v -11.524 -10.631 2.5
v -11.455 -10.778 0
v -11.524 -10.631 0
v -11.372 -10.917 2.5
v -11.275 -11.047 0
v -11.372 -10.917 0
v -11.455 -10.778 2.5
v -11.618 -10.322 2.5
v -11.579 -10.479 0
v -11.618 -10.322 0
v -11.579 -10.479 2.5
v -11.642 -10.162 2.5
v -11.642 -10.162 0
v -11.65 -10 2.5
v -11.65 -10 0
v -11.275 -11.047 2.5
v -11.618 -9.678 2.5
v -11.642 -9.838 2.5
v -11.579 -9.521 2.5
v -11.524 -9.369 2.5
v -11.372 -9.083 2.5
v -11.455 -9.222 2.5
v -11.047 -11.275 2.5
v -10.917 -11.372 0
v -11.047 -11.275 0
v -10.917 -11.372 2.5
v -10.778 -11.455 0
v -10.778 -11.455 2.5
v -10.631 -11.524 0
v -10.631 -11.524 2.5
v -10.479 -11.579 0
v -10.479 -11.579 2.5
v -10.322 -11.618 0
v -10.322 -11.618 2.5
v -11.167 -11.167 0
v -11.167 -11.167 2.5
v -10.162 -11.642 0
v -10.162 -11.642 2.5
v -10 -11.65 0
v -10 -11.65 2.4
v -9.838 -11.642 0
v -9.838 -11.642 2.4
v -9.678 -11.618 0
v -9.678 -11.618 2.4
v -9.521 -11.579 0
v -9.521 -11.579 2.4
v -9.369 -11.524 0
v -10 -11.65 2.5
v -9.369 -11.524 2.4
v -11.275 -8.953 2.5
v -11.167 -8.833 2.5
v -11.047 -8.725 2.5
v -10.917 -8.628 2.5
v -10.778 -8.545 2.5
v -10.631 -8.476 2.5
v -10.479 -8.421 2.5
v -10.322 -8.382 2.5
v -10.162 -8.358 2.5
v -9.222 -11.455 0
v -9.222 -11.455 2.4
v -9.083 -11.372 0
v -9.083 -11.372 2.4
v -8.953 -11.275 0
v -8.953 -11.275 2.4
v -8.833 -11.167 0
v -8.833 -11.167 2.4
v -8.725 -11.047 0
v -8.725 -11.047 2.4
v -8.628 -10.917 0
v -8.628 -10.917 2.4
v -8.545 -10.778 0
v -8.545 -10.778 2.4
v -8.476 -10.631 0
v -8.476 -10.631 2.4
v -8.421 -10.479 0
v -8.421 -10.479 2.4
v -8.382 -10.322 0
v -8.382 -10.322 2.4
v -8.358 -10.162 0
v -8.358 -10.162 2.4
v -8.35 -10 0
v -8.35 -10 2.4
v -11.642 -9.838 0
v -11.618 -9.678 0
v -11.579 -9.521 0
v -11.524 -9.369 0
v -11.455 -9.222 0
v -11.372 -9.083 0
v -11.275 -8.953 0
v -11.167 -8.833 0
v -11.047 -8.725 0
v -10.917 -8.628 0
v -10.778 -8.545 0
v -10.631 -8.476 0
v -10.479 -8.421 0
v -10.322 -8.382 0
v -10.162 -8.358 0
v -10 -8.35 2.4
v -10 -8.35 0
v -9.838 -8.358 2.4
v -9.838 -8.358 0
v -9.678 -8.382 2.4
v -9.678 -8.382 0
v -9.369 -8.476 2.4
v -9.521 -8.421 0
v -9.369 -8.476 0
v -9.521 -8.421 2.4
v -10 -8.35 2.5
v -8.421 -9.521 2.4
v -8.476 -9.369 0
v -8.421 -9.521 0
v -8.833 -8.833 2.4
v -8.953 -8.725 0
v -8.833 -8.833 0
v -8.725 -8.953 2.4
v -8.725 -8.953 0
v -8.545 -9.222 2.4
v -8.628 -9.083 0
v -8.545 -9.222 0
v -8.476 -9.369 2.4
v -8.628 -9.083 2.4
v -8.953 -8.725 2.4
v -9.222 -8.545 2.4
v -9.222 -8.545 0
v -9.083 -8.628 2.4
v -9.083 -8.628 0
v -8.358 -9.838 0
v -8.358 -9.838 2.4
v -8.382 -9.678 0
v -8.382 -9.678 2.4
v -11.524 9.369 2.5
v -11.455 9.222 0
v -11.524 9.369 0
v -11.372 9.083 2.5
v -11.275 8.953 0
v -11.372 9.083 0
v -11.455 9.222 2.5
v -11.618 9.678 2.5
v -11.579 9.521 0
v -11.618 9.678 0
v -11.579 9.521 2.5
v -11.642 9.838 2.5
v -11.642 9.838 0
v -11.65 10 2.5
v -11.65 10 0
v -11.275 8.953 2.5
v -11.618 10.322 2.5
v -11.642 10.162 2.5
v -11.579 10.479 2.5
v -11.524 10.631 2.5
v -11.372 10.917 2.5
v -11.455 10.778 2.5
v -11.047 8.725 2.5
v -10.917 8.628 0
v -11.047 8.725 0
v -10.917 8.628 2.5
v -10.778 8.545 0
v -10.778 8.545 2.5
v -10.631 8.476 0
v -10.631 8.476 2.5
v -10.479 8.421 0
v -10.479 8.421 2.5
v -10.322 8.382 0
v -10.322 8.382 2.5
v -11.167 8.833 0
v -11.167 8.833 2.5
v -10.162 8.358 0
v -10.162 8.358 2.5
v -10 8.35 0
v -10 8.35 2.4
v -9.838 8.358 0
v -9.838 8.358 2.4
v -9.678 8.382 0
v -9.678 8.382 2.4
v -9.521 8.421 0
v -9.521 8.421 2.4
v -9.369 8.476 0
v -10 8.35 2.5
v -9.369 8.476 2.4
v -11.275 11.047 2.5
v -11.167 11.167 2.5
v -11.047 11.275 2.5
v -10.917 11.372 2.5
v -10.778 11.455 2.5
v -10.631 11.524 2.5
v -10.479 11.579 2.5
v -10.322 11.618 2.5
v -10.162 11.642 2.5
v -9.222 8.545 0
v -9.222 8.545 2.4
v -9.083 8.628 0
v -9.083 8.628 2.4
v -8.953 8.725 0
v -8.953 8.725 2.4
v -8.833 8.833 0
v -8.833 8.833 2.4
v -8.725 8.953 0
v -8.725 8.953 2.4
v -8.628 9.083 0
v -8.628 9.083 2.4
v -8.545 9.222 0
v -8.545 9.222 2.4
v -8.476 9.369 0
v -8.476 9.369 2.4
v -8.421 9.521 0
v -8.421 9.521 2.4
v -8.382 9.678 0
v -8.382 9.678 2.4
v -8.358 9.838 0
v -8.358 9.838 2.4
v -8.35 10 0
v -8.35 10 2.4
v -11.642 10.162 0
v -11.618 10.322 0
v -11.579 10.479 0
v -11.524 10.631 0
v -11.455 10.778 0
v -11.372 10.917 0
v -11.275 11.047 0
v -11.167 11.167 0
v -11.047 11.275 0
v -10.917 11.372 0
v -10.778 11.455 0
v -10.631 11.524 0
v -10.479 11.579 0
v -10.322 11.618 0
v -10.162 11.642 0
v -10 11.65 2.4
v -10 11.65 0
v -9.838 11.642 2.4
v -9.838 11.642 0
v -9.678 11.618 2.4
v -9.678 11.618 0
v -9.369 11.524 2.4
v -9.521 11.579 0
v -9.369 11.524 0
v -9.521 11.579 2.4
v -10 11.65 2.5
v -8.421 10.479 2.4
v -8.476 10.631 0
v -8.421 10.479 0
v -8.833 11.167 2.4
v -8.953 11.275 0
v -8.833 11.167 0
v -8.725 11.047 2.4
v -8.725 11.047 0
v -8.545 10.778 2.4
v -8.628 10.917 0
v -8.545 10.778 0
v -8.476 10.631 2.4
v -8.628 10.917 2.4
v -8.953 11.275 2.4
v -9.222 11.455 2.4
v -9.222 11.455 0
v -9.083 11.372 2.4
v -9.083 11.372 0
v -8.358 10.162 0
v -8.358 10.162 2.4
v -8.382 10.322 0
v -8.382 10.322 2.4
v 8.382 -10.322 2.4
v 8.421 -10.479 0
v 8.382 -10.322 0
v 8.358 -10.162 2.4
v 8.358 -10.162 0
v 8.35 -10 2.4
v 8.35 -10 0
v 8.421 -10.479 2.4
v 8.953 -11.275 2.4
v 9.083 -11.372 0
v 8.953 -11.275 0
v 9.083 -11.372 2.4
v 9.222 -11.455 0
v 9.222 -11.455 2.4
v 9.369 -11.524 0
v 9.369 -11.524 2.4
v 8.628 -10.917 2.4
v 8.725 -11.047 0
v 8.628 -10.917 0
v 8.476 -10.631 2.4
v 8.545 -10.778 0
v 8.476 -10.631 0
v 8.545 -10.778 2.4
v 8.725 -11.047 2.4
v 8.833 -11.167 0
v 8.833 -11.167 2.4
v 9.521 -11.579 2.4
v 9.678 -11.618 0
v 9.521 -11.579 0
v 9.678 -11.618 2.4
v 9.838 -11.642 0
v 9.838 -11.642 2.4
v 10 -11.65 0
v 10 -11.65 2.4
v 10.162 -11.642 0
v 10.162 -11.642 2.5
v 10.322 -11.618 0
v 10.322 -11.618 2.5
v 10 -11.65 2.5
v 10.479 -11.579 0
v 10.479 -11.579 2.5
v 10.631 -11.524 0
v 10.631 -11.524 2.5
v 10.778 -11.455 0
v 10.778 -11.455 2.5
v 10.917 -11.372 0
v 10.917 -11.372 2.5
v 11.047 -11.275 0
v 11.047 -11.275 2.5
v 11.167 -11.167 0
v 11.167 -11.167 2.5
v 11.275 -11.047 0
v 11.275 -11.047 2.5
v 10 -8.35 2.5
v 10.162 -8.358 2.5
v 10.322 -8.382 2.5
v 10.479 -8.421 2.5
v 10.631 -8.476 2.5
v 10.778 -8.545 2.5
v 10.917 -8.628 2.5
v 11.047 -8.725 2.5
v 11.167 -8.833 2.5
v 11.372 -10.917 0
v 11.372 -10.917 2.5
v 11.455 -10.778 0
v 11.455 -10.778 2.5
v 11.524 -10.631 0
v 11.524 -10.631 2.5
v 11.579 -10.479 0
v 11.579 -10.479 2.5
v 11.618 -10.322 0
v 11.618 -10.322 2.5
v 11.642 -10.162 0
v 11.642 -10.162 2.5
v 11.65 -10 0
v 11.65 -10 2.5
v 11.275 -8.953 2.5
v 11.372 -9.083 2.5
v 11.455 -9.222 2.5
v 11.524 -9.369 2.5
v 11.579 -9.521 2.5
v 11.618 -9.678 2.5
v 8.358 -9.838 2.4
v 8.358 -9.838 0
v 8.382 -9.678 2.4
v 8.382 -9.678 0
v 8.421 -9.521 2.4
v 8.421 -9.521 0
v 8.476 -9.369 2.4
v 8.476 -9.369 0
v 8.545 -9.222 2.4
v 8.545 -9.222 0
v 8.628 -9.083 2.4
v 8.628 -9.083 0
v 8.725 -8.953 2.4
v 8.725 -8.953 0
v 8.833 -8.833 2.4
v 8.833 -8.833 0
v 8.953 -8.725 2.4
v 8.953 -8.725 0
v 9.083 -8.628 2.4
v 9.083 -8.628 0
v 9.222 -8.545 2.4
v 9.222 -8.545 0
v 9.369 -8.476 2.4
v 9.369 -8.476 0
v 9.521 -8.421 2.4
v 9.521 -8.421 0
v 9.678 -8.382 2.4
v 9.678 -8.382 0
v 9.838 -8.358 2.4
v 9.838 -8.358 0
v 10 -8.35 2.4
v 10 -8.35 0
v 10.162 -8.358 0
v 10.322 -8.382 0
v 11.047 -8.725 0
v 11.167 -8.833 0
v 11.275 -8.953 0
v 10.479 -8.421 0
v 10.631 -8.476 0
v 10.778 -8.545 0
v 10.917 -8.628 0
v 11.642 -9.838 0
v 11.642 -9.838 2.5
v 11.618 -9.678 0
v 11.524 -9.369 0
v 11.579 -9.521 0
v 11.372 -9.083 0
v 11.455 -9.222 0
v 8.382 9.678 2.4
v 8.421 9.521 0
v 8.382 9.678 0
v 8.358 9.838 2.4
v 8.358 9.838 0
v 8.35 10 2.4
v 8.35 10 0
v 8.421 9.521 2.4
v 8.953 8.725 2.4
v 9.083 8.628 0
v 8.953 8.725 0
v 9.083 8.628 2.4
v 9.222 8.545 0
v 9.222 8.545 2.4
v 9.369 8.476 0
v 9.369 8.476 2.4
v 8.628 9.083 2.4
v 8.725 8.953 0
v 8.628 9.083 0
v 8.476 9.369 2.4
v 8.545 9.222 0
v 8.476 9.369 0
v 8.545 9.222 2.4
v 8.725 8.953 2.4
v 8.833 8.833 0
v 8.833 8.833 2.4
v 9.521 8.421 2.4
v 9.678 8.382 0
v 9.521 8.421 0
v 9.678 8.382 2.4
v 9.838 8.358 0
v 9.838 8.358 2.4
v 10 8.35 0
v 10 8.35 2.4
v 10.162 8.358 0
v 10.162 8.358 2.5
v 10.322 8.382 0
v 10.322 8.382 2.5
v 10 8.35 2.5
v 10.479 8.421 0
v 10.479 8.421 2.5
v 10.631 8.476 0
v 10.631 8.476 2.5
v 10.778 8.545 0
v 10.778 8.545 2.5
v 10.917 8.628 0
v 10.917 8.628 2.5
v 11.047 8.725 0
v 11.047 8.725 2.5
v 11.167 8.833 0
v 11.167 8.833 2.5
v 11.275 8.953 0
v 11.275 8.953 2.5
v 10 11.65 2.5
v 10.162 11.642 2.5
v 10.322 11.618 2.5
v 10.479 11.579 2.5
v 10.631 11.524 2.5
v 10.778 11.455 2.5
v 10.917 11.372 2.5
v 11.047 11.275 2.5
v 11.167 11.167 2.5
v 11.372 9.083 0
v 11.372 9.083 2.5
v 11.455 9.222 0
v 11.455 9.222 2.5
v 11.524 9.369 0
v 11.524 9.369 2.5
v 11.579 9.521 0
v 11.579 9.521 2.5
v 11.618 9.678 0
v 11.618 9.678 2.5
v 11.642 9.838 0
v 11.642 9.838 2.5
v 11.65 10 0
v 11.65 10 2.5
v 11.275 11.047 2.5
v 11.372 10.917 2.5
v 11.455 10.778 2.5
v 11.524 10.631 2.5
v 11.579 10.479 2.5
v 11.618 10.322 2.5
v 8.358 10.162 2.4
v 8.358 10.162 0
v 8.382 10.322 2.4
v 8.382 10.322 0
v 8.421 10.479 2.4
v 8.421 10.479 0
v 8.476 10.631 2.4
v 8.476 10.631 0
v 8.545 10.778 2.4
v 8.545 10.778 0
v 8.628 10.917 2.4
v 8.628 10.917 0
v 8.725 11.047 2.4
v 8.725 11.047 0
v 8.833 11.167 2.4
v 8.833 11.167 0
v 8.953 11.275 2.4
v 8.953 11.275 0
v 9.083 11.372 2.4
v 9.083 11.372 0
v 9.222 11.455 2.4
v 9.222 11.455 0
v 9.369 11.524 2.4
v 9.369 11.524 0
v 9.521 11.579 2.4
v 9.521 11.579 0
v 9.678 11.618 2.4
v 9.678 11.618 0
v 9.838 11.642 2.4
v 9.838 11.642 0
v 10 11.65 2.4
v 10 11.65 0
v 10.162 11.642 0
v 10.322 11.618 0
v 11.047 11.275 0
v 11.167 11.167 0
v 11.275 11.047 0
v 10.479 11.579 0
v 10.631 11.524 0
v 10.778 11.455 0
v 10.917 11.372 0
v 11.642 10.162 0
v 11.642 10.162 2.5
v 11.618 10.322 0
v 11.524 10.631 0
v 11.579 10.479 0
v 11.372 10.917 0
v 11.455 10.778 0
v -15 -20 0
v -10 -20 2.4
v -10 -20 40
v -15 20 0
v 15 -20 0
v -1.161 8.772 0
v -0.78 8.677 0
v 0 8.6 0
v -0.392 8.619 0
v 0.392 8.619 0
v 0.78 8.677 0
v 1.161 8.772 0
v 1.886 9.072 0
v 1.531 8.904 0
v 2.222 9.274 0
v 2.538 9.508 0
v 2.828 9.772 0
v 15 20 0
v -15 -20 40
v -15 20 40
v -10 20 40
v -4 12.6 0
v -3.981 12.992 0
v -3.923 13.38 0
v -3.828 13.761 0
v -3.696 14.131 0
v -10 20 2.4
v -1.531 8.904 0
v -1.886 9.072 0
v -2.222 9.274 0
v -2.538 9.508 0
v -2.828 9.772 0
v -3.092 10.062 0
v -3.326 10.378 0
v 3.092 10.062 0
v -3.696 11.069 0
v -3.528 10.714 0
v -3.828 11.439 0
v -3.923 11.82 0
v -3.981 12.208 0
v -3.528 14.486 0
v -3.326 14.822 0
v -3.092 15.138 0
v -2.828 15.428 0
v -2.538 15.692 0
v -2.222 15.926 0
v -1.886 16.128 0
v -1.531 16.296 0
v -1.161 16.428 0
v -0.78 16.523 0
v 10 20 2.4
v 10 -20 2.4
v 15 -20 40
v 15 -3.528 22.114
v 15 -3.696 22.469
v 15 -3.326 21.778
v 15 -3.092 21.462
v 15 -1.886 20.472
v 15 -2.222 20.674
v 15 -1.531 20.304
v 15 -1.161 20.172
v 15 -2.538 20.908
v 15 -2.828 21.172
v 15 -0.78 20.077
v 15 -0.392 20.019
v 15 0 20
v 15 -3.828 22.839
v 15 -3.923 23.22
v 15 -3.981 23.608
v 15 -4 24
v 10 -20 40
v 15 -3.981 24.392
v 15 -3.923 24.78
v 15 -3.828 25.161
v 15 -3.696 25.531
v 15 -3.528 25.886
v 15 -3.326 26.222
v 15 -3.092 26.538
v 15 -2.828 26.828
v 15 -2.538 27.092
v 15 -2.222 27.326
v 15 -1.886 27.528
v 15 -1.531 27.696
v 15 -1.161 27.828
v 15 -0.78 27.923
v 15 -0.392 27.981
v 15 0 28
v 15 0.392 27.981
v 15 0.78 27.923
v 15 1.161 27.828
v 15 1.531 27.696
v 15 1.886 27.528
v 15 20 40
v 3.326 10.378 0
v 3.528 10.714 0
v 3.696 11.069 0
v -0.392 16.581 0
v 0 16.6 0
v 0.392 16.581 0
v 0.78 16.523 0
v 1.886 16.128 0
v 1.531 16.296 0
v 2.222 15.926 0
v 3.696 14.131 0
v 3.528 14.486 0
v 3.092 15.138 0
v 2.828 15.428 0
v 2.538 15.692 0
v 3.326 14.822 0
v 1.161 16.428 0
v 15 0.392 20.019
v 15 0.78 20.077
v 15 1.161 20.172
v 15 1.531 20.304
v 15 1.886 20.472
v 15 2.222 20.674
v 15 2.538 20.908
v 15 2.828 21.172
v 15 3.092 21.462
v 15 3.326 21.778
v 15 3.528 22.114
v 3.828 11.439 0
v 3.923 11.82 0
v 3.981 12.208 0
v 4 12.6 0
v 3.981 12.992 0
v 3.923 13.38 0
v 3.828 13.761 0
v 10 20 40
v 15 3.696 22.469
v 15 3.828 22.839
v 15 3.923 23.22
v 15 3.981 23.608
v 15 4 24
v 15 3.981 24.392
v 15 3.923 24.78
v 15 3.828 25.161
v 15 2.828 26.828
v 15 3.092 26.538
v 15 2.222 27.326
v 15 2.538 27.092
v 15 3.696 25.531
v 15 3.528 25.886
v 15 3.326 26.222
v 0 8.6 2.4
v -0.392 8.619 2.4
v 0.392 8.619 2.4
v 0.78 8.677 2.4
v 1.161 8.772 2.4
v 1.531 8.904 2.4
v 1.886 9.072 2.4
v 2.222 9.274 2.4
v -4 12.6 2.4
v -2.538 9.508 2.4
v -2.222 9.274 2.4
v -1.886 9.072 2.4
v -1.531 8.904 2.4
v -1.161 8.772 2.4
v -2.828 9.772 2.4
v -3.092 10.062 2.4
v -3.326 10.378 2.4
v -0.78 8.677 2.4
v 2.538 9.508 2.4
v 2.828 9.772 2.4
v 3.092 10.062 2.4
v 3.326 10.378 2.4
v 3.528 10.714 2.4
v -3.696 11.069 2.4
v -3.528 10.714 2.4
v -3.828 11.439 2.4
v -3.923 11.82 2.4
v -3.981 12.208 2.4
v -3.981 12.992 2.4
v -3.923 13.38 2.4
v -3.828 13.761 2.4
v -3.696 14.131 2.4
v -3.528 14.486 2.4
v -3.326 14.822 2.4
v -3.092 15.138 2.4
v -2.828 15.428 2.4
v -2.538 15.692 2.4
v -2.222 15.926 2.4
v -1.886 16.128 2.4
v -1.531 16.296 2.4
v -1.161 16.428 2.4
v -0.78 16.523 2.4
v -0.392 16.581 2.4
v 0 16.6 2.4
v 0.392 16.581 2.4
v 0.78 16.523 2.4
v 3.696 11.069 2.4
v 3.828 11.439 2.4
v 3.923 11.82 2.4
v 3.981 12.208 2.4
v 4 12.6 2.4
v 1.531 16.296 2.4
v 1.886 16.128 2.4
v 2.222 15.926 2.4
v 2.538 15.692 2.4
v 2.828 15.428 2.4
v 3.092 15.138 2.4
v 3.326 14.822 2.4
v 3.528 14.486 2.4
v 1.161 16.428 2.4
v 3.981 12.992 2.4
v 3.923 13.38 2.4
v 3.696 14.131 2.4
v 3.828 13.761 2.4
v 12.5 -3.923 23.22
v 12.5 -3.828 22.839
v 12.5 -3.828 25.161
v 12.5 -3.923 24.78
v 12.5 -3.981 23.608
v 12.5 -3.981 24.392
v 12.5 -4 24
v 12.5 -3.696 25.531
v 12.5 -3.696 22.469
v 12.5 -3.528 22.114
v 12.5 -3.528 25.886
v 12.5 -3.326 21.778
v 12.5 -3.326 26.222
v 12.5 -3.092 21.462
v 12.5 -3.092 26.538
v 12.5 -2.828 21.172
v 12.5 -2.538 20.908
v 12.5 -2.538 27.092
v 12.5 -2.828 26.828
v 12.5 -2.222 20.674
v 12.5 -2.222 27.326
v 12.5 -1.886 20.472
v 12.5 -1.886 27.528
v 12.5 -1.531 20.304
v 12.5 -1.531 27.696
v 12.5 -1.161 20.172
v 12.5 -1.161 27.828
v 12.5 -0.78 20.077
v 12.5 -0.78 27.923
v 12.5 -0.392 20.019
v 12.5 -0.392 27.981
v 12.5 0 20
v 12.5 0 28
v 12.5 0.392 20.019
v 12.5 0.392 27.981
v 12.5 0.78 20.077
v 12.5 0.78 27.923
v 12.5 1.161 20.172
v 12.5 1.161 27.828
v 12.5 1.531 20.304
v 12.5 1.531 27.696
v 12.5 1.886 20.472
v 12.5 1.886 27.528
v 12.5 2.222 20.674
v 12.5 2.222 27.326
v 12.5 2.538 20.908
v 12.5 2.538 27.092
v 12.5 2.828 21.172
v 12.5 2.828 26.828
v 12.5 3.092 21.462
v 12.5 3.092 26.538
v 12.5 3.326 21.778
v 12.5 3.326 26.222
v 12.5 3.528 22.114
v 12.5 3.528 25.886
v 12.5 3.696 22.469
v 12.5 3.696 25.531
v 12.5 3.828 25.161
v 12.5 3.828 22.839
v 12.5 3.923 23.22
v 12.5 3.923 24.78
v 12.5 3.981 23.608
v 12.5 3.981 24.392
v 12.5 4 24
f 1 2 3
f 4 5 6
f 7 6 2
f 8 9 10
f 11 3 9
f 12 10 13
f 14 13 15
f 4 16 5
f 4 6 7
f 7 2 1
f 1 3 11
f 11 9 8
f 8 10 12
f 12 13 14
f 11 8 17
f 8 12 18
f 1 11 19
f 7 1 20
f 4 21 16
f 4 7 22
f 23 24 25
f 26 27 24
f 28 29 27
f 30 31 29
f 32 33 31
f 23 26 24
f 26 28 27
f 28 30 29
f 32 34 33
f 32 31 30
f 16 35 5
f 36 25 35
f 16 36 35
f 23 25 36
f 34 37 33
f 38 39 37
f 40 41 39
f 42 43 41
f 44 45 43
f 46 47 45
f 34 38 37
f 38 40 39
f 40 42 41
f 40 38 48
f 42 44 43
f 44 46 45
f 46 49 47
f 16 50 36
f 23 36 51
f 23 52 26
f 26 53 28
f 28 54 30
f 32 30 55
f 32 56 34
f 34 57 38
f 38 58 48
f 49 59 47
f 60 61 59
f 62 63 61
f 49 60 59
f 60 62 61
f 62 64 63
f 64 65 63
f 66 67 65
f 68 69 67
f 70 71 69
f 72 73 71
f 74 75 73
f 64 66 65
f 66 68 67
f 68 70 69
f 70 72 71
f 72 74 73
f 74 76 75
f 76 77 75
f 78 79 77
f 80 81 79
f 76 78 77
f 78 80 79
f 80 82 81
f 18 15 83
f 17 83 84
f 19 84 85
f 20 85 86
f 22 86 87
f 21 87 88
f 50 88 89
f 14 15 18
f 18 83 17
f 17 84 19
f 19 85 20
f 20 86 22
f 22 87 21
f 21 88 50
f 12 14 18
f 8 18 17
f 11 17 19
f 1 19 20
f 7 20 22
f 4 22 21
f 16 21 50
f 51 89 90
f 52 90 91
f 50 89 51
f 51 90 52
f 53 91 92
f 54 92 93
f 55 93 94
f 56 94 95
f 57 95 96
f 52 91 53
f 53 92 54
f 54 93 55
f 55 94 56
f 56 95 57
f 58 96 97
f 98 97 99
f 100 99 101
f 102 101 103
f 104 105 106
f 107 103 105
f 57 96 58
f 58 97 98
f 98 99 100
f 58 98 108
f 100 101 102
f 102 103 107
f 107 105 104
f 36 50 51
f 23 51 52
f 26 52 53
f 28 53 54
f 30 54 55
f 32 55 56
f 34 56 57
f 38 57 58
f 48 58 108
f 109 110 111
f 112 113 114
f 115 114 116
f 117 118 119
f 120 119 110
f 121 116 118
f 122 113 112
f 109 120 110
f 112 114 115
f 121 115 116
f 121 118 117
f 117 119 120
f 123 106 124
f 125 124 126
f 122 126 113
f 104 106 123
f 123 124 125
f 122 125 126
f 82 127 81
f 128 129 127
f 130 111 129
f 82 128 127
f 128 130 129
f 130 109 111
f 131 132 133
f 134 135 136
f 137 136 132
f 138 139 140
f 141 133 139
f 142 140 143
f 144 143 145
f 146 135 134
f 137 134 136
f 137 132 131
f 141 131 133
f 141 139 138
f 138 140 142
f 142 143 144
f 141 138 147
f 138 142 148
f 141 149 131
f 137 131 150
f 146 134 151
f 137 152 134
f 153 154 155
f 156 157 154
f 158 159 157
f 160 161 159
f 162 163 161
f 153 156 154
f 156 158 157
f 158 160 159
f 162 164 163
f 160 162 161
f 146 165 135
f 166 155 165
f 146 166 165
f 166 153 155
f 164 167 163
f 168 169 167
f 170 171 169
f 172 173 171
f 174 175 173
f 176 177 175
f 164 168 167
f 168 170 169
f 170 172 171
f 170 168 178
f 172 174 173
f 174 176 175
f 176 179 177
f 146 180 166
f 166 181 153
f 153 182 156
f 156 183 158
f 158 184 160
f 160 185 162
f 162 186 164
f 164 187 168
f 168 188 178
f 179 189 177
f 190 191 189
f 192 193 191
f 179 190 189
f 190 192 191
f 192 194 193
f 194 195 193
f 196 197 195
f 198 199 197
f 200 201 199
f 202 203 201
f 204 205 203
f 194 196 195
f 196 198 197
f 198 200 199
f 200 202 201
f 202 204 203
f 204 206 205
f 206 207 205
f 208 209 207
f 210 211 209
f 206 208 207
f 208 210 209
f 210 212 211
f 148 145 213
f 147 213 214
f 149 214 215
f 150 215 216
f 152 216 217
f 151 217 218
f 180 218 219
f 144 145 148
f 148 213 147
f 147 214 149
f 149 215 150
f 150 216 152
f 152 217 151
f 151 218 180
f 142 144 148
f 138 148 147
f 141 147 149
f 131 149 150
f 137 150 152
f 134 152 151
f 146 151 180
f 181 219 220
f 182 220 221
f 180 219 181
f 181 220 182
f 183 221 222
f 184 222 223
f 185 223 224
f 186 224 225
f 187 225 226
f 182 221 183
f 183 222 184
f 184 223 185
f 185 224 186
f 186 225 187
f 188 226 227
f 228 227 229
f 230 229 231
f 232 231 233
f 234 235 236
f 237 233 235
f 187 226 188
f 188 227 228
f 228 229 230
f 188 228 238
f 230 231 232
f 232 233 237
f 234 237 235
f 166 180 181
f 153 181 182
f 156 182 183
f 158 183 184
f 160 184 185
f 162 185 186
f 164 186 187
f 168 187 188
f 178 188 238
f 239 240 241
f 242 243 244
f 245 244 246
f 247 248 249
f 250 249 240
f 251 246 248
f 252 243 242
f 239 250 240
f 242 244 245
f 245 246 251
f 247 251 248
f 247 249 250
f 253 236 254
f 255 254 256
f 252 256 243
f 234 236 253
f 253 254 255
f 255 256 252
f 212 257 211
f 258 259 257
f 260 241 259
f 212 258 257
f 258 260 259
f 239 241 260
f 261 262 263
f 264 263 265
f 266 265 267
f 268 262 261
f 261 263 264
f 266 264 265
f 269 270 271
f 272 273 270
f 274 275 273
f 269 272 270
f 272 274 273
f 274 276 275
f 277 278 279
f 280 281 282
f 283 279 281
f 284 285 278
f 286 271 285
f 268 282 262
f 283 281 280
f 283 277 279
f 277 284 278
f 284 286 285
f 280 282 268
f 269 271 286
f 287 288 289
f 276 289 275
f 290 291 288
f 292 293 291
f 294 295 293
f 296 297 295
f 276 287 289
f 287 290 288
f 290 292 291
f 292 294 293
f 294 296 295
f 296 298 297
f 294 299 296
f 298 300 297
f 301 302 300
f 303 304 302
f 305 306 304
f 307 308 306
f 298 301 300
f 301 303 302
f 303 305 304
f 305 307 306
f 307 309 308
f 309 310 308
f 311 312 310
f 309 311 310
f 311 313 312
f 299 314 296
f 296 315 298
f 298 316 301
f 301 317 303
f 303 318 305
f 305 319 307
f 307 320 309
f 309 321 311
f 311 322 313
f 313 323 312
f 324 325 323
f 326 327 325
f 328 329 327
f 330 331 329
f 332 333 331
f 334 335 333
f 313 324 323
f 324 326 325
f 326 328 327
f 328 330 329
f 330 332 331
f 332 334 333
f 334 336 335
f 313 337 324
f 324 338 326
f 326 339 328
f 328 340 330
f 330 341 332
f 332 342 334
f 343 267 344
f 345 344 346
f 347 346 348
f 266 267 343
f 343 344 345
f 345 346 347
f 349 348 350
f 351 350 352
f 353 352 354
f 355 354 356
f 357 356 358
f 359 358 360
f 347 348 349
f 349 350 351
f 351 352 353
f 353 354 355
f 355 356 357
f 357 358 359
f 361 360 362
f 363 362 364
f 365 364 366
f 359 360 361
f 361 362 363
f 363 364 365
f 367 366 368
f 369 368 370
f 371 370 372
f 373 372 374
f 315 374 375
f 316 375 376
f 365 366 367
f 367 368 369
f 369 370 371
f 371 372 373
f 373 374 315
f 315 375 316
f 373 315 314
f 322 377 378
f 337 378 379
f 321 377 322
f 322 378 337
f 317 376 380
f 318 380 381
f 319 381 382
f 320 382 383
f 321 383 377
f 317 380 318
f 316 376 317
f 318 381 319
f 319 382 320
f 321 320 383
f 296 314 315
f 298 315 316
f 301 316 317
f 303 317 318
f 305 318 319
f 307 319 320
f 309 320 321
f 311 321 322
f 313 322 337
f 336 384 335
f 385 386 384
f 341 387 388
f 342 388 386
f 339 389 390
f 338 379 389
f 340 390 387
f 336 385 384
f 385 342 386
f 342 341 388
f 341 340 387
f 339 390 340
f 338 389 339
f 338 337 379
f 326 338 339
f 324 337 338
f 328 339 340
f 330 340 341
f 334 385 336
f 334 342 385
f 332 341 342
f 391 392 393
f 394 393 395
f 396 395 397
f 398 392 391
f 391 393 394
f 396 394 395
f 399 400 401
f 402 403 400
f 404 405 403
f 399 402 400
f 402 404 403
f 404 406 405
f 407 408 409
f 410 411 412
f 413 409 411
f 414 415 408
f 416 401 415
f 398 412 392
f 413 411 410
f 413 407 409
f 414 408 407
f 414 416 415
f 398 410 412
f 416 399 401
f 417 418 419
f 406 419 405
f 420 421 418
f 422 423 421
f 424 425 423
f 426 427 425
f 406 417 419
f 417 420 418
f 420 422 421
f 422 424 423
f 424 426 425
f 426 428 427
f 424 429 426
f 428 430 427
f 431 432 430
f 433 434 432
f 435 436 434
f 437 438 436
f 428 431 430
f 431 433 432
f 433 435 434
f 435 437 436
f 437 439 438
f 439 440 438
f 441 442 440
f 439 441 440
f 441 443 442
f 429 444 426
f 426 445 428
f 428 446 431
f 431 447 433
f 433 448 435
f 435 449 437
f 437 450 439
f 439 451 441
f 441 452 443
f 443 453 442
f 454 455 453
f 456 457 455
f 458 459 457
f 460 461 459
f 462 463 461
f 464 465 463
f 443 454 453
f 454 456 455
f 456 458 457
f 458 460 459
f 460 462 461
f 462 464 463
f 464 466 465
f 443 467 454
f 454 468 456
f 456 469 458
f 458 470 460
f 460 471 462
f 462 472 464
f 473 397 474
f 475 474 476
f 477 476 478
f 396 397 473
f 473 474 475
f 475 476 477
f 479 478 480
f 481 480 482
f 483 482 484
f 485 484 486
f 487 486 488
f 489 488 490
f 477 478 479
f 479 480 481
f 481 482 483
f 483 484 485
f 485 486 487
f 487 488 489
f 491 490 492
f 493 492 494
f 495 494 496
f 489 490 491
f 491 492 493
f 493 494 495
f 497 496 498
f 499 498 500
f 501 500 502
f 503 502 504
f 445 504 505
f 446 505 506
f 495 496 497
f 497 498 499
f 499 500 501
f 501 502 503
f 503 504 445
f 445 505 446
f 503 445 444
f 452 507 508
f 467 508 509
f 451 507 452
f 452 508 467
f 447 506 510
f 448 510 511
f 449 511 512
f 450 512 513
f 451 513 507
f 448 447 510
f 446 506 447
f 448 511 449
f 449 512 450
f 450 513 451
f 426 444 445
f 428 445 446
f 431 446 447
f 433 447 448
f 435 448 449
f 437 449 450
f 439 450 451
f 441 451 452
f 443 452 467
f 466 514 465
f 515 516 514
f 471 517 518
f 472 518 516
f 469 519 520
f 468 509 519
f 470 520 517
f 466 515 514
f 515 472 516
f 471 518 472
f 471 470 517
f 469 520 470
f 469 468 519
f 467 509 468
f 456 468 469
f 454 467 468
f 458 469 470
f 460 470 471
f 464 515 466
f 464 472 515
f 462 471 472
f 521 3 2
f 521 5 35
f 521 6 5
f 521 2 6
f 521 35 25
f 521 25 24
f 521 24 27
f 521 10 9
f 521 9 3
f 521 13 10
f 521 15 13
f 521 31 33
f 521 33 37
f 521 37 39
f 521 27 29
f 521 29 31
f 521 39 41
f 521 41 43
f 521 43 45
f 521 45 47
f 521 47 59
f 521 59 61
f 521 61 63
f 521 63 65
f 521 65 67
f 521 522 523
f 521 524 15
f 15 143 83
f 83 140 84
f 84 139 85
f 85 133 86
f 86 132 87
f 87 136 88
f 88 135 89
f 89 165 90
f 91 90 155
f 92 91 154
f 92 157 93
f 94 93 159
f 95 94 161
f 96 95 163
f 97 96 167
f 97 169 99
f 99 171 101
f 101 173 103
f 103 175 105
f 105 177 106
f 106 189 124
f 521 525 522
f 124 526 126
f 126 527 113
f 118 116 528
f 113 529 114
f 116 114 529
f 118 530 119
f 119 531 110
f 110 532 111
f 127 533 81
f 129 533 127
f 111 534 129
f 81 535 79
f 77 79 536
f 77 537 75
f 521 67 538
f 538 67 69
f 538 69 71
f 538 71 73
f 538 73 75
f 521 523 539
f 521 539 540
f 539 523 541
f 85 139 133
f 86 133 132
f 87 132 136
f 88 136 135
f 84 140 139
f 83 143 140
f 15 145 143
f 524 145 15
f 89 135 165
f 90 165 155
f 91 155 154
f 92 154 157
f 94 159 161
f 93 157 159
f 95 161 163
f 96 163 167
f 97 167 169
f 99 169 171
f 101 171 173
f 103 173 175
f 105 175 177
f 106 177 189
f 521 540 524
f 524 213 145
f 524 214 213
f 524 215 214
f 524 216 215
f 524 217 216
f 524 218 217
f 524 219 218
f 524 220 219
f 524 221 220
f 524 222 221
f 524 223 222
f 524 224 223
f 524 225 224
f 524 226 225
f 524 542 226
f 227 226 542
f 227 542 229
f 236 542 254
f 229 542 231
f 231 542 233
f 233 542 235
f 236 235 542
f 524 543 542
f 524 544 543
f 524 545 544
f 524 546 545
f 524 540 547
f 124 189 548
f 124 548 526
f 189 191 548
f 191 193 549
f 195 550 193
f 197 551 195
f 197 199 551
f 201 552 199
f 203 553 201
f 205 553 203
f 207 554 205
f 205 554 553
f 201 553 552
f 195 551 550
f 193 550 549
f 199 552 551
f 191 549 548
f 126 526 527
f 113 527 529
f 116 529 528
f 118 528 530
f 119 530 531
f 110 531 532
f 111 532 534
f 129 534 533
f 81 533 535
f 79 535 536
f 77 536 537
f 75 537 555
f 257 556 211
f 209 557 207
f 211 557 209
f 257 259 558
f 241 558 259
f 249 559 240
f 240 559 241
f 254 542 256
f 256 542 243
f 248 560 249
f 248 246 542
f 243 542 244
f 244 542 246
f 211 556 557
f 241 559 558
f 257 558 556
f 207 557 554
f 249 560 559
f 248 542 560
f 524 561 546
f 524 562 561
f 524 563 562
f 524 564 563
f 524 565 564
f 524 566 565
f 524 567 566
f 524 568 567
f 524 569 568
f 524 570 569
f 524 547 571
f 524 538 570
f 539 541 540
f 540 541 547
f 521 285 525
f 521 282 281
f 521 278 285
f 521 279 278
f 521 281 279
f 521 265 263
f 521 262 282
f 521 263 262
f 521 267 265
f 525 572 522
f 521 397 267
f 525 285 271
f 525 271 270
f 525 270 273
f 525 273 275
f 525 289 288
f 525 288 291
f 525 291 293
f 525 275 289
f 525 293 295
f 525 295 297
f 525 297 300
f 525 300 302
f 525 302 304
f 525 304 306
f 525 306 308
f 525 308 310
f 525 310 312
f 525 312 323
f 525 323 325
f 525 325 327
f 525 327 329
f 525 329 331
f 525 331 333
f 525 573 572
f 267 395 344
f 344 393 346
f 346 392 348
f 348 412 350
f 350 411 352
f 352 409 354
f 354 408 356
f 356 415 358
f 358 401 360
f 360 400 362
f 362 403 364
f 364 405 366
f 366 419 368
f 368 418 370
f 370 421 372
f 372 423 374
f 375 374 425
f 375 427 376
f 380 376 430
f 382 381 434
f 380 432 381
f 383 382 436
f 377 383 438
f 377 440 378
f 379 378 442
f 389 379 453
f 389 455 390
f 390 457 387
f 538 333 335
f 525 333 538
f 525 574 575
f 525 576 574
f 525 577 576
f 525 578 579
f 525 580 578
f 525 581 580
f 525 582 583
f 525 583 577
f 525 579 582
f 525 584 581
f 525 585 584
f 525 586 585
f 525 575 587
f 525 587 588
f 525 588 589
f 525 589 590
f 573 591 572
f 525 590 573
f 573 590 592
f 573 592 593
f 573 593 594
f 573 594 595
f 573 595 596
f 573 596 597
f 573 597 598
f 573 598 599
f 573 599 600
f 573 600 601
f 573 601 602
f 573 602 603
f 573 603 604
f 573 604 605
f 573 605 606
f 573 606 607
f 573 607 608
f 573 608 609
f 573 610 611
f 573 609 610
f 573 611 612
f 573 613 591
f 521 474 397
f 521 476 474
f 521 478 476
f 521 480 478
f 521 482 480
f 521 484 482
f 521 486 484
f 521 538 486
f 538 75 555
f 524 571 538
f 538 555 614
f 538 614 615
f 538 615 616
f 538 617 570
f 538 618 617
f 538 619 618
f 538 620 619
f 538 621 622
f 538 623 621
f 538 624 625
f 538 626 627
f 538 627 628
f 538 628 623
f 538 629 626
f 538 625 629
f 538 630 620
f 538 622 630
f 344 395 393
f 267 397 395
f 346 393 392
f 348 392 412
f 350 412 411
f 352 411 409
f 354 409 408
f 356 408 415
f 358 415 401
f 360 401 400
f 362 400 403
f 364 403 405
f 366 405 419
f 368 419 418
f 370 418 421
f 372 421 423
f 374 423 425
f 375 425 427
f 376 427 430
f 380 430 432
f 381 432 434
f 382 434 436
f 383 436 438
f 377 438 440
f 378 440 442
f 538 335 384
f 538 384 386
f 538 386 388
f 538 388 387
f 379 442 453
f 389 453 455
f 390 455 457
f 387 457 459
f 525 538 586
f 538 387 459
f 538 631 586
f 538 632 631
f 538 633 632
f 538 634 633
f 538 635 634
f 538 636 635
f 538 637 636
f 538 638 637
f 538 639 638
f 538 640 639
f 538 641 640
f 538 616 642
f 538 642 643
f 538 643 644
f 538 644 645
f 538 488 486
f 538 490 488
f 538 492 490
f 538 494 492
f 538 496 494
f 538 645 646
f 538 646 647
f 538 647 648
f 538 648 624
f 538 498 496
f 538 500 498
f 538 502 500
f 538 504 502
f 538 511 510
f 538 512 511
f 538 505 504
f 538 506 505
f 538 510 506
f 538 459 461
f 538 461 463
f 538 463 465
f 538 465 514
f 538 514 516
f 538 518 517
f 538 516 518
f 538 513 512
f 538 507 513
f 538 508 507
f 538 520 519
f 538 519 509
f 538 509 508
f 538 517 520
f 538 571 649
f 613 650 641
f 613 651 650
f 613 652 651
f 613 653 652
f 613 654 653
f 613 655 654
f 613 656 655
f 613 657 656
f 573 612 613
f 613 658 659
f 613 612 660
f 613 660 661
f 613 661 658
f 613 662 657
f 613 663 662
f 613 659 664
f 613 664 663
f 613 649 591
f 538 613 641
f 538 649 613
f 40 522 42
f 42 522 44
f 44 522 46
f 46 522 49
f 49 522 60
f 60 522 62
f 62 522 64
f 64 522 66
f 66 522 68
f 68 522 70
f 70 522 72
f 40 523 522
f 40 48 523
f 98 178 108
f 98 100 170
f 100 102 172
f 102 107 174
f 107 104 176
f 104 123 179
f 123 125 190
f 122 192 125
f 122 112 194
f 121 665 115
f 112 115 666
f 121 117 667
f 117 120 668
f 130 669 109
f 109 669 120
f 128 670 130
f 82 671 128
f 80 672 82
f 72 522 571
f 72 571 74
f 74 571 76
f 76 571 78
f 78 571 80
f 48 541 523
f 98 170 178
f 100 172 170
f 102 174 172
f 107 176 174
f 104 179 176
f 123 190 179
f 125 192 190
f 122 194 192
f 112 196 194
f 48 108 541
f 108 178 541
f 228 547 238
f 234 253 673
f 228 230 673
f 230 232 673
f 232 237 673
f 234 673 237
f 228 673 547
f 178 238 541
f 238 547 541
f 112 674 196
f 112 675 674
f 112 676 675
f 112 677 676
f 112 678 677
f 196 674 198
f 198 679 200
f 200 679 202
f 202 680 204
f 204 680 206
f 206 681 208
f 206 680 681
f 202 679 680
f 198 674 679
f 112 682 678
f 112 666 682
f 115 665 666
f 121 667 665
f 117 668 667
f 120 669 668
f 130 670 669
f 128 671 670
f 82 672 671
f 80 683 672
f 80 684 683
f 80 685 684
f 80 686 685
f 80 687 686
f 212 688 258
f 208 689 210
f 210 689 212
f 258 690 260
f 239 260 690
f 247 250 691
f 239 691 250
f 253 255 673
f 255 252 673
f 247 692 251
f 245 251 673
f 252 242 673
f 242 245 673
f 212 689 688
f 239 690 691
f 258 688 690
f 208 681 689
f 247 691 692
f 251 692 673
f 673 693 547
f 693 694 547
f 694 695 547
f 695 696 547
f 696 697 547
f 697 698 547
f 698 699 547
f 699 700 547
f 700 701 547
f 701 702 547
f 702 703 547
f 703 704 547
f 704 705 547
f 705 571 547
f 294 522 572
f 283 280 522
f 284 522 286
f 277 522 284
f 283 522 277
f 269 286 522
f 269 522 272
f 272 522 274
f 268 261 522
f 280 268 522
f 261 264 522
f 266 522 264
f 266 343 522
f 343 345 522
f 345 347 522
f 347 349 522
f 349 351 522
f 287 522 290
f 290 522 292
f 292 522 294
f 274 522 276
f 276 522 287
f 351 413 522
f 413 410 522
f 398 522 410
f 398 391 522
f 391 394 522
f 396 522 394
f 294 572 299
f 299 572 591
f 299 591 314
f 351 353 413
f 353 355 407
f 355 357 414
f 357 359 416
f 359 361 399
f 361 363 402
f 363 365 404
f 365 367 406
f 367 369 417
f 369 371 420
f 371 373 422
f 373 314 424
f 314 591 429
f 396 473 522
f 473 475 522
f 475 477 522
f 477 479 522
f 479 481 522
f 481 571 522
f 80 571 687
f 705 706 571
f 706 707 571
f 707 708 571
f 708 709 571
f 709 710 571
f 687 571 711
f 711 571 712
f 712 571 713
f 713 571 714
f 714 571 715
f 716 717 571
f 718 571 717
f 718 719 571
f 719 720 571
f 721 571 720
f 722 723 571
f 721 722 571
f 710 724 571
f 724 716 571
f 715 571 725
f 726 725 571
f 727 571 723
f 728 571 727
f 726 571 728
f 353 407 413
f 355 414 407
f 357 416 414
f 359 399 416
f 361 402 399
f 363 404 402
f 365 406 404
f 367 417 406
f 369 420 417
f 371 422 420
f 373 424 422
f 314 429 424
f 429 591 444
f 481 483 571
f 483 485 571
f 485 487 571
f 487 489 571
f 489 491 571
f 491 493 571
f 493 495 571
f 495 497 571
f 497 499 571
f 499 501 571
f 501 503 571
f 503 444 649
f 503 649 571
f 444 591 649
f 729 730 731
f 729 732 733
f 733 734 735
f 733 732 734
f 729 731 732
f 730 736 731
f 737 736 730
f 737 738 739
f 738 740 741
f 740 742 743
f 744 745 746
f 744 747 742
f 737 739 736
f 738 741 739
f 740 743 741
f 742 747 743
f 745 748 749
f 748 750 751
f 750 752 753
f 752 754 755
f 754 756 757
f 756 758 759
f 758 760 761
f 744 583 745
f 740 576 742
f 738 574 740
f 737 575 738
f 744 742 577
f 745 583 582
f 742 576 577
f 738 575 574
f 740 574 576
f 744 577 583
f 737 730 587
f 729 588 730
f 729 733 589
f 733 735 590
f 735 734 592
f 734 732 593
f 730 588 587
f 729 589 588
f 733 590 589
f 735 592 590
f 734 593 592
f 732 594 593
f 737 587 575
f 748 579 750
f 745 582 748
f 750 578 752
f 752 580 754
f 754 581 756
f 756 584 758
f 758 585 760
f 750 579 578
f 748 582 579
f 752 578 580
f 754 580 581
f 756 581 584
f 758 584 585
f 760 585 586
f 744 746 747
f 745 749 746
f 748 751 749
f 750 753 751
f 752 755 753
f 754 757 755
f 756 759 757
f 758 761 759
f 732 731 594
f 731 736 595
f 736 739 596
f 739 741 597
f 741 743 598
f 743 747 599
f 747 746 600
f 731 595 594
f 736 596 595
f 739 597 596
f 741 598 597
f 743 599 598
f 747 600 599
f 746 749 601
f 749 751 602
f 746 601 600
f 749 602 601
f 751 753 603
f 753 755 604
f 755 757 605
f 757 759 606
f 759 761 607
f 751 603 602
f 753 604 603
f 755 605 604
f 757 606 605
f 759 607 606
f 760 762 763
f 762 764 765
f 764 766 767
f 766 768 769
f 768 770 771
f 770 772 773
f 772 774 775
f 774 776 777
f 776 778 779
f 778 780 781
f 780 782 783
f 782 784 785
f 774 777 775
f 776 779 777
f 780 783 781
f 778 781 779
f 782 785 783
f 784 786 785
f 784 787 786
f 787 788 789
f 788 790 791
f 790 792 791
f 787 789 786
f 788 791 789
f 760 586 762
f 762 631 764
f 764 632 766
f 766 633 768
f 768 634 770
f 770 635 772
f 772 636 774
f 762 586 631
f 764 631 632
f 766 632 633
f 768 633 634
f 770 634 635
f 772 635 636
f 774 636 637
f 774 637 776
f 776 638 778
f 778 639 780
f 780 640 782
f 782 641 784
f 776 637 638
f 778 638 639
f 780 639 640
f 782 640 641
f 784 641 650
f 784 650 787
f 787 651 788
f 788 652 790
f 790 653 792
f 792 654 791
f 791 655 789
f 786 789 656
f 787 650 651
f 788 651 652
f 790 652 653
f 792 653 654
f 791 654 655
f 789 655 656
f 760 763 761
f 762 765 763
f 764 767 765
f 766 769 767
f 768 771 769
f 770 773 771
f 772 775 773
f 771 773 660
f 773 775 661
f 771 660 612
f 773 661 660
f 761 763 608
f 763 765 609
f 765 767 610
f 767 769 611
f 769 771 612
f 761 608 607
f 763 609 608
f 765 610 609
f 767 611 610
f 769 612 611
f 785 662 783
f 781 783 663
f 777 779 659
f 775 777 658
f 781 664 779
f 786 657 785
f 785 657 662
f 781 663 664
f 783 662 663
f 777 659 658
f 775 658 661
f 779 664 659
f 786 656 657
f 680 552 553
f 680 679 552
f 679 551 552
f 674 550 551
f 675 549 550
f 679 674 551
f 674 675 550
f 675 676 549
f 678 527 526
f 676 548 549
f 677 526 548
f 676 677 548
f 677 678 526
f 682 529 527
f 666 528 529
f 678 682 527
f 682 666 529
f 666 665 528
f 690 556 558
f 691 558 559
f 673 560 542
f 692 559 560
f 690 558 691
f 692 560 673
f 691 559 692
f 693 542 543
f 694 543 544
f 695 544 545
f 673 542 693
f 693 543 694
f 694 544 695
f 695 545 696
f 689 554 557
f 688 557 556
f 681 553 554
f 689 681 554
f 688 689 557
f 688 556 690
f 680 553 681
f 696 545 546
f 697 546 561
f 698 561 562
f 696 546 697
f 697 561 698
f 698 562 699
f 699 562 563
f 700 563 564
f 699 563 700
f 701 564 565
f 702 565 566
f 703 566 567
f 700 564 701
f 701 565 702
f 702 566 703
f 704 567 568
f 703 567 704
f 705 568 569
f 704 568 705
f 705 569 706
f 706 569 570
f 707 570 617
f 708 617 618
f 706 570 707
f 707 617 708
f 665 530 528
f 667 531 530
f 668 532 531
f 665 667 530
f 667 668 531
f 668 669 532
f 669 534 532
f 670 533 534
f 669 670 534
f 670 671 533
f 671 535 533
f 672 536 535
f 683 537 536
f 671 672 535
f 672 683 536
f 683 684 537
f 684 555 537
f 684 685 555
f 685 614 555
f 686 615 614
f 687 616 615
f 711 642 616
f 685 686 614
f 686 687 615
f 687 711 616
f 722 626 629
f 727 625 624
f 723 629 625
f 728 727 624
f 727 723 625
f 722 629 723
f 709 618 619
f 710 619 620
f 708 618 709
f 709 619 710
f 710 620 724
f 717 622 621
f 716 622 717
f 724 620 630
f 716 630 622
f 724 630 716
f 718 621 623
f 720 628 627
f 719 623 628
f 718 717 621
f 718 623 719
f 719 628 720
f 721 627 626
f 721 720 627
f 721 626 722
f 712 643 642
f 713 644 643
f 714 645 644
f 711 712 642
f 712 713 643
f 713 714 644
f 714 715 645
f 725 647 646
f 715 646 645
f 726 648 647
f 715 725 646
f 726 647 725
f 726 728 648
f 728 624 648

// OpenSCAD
// file: util.scad
// Shared helper modules for node-dock parts.
include <params.scad>

// Boss for a heat-set insert. h = total boss height, with insert pocket
// drilled from the top.
module insert_boss(h = 8) {
    difference() {
        cylinder(h = h, d = M3_INSERT_D + 2 * WALL);
        translate([0, 0, h - M3_INSERT_H])
            cylinder(h = M3_INSERT_H + 0.1, d = M3_INSERT_D);
    }
}

// Through-hole for M3 clearance.
module m3_through(h) {
    cylinder(h = h + 0.2, d = M3_CLEAR, center = false);
}

// Alignment peg (printed solid).
module peg(h = 8) {
    cylinder(h = h, d = PEG_D);
}

// Alignment-peg socket.
module peg_hole(h = 8) {
    cylinder(h = h + 0.1, d = PEG_D + 0.2);
}

// Rounded rectangle (2D) for shells.
module rrect(x, y, r = 3) {
    hull() for (sx = [-1, 1], sy = [-1, 1])
        translate([sx * (x/2 - r), sy * (y/2 - r), 0]) circle(r = r);
}

// Servo cavity (rectangular box, centered XY, base at z=0).
module servo_cavity(x, y, z) {
    translate([-x/2, -y/2, 0]) cube([x, y, z + 0.1]);
}
// file: params.scad
// Shared parameters for node-dock shell.
// All dimensions in millimeters. Sourced from
//   ../../bodylink/sim/bodies/dock_humanoid.xml
// where they are in meters.

// ── Global tolerances ────────────────────────────────────────────────
WALL        = 2.4;   // 3 perimeters at 0.4 mm nozzle / 0.2 mm layer
FIT         = 0.3;   // press-fit clearance on servo cavities
PHONE_FIT   = 0.5;   // clearance around phone outline
M3_CLEAR    = 3.3;   // M3 clearance hole
M3_INSERT_D = 5.0;   // heat-set insert outer Ø
M3_INSERT_H = 5.0;   // heat-set insert depth
PEG_D       = 4.0;   // alignment peg Ø (peg) / hole Ø is PEG_D + 0.2

$fn = 64;            // smooth curves by default

// ── Base ─────────────────────────────────────────────────────────────
BASE_D      = 240;
BASE_H      = 50;
BASE_SPLIT  = 25;    // halve the disc horizontally
BASE_FLANGE_D = 90;
BASE_FLANGE_H = 10;

// ── Leg shaft ────────────────────────────────────────────────────────
LEG_D       = 60;
LEG_H       = 70;
LEG_BORE    = 16;    // cable channel Ø

// ── Trunk ────────────────────────────────────────────────────────────
TRUNK_X     = 100;
TRUNK_Y     = 80;
TRUNK_Z     = 140;

// ── Neck stub (enlarged from XML 30³ to fit MG996R + MG90S stacked) ──
NECK_X      = 30;
NECK_Y      = 40;
NECK_Z      = 40;

// ── Head / phone cradle ──────────────────────────────────────────────
// XML head_plate visible face: 200 × 100 mm (landscape), 20 mm thick
// XML head_frame_back: 216 × 26 × 114 mm
HEAD_X      = 216;
HEAD_Y      = 26;
HEAD_Z      = 114;
PHONE_X     = 165;   // typical 6.1" phone outline; iPhone 15-class
PHONE_Y     = 9;     // phone thickness
PHONE_Z     = 76;
BEZEL_LIP   = 6;     // visible-face overlap on the front bezel

// ── Shoulder bracket ─────────────────────────────────────────────────
SHB_X       = 36;
SHB_Y       = 28;
SHB_Z       = 28;

// ── Arm ──────────────────────────────────────────────────────────────
ARM_D       = 26;
ARM_L       = 60;

// ── Servo cavities (datasheet + FIT clearance) ───────────────────────
// DS3218 standard servo body: 40 × 20 × 38.5 + cable boss
DS3218_X = 40.0 + FIT;
DS3218_Y = 20.0 + FIT;
DS3218_Z = 38.5 + FIT;
DS3218_EAR_W = 54.5;   // mounting-ear span
DS3218_EAR_T = 2.5;

// MG996R: 40.7 × 19.7 × 42.9
MG996R_X = 40.7 + FIT;
MG996R_Y = 19.7 + FIT;
MG996R_Z = 42.9 + FIT;

// MG90S / SG90: 22.8 × 12.2 × 28.5 (MG90S body height includes flange)
MG90S_X = 22.8 + FIT;
MG90S_Y = 12.2 + FIT;
MG90S_Z = 28.5 + FIT;
// main file
// Neck stub — houses stacked MG996R (pitch) + MG90S (roll).
// Bolts to trunk_back ceiling; top face carries the head cradle.
include <params.scad>
use <util.scad>

module neck_stub() {
    difference() {
        translate([-NECK_X/2, -NECK_Y/2, 0])
            cube([NECK_X, NECK_Y, NECK_Z]);

        // MG996R cavity (pitch, axis X) — lower position.
        translate([0, 0, WALL])
            servo_cavity(MG996R_Y, MG996R_X, MG996R_Z);
        // MG996R output-shaft access (pitch axis runs through X side).
        translate([NECK_X/2 - WALL - 0.1, 0, WALL + MG996R_Z/2])
            rotate([0, 90, 0]) cylinder(h = WALL + 0.4, d = 8);

        // MG90S cavity (roll, axis Y) — stacked above.
        translate([0, 0, WALL + MG996R_Z + 2])
            servo_cavity(MG90S_X, MG90S_Y, MG90S_Z);
        // MG90S output-shaft access through top face.
        translate([0, 0, NECK_Z - WALL - 0.1])
            cylinder(h = WALL + 0.4, d = 8);

        // Mounting holes on the bottom face (matches trunk_back ceiling pattern).
        for (dx = [-10, 10], dy = [-10, 10])
            translate([dx, dy, -0.1])
                cylinder(h = WALL + 0.2, d = M3_CLEAR);

        // Cable pass-through to trunk.
        translate([0, NECK_Y/2 - WALL - 5, -0.1])
            cylinder(h = WALL + 0.2, d = 8);
    }
}

neck_stub();
